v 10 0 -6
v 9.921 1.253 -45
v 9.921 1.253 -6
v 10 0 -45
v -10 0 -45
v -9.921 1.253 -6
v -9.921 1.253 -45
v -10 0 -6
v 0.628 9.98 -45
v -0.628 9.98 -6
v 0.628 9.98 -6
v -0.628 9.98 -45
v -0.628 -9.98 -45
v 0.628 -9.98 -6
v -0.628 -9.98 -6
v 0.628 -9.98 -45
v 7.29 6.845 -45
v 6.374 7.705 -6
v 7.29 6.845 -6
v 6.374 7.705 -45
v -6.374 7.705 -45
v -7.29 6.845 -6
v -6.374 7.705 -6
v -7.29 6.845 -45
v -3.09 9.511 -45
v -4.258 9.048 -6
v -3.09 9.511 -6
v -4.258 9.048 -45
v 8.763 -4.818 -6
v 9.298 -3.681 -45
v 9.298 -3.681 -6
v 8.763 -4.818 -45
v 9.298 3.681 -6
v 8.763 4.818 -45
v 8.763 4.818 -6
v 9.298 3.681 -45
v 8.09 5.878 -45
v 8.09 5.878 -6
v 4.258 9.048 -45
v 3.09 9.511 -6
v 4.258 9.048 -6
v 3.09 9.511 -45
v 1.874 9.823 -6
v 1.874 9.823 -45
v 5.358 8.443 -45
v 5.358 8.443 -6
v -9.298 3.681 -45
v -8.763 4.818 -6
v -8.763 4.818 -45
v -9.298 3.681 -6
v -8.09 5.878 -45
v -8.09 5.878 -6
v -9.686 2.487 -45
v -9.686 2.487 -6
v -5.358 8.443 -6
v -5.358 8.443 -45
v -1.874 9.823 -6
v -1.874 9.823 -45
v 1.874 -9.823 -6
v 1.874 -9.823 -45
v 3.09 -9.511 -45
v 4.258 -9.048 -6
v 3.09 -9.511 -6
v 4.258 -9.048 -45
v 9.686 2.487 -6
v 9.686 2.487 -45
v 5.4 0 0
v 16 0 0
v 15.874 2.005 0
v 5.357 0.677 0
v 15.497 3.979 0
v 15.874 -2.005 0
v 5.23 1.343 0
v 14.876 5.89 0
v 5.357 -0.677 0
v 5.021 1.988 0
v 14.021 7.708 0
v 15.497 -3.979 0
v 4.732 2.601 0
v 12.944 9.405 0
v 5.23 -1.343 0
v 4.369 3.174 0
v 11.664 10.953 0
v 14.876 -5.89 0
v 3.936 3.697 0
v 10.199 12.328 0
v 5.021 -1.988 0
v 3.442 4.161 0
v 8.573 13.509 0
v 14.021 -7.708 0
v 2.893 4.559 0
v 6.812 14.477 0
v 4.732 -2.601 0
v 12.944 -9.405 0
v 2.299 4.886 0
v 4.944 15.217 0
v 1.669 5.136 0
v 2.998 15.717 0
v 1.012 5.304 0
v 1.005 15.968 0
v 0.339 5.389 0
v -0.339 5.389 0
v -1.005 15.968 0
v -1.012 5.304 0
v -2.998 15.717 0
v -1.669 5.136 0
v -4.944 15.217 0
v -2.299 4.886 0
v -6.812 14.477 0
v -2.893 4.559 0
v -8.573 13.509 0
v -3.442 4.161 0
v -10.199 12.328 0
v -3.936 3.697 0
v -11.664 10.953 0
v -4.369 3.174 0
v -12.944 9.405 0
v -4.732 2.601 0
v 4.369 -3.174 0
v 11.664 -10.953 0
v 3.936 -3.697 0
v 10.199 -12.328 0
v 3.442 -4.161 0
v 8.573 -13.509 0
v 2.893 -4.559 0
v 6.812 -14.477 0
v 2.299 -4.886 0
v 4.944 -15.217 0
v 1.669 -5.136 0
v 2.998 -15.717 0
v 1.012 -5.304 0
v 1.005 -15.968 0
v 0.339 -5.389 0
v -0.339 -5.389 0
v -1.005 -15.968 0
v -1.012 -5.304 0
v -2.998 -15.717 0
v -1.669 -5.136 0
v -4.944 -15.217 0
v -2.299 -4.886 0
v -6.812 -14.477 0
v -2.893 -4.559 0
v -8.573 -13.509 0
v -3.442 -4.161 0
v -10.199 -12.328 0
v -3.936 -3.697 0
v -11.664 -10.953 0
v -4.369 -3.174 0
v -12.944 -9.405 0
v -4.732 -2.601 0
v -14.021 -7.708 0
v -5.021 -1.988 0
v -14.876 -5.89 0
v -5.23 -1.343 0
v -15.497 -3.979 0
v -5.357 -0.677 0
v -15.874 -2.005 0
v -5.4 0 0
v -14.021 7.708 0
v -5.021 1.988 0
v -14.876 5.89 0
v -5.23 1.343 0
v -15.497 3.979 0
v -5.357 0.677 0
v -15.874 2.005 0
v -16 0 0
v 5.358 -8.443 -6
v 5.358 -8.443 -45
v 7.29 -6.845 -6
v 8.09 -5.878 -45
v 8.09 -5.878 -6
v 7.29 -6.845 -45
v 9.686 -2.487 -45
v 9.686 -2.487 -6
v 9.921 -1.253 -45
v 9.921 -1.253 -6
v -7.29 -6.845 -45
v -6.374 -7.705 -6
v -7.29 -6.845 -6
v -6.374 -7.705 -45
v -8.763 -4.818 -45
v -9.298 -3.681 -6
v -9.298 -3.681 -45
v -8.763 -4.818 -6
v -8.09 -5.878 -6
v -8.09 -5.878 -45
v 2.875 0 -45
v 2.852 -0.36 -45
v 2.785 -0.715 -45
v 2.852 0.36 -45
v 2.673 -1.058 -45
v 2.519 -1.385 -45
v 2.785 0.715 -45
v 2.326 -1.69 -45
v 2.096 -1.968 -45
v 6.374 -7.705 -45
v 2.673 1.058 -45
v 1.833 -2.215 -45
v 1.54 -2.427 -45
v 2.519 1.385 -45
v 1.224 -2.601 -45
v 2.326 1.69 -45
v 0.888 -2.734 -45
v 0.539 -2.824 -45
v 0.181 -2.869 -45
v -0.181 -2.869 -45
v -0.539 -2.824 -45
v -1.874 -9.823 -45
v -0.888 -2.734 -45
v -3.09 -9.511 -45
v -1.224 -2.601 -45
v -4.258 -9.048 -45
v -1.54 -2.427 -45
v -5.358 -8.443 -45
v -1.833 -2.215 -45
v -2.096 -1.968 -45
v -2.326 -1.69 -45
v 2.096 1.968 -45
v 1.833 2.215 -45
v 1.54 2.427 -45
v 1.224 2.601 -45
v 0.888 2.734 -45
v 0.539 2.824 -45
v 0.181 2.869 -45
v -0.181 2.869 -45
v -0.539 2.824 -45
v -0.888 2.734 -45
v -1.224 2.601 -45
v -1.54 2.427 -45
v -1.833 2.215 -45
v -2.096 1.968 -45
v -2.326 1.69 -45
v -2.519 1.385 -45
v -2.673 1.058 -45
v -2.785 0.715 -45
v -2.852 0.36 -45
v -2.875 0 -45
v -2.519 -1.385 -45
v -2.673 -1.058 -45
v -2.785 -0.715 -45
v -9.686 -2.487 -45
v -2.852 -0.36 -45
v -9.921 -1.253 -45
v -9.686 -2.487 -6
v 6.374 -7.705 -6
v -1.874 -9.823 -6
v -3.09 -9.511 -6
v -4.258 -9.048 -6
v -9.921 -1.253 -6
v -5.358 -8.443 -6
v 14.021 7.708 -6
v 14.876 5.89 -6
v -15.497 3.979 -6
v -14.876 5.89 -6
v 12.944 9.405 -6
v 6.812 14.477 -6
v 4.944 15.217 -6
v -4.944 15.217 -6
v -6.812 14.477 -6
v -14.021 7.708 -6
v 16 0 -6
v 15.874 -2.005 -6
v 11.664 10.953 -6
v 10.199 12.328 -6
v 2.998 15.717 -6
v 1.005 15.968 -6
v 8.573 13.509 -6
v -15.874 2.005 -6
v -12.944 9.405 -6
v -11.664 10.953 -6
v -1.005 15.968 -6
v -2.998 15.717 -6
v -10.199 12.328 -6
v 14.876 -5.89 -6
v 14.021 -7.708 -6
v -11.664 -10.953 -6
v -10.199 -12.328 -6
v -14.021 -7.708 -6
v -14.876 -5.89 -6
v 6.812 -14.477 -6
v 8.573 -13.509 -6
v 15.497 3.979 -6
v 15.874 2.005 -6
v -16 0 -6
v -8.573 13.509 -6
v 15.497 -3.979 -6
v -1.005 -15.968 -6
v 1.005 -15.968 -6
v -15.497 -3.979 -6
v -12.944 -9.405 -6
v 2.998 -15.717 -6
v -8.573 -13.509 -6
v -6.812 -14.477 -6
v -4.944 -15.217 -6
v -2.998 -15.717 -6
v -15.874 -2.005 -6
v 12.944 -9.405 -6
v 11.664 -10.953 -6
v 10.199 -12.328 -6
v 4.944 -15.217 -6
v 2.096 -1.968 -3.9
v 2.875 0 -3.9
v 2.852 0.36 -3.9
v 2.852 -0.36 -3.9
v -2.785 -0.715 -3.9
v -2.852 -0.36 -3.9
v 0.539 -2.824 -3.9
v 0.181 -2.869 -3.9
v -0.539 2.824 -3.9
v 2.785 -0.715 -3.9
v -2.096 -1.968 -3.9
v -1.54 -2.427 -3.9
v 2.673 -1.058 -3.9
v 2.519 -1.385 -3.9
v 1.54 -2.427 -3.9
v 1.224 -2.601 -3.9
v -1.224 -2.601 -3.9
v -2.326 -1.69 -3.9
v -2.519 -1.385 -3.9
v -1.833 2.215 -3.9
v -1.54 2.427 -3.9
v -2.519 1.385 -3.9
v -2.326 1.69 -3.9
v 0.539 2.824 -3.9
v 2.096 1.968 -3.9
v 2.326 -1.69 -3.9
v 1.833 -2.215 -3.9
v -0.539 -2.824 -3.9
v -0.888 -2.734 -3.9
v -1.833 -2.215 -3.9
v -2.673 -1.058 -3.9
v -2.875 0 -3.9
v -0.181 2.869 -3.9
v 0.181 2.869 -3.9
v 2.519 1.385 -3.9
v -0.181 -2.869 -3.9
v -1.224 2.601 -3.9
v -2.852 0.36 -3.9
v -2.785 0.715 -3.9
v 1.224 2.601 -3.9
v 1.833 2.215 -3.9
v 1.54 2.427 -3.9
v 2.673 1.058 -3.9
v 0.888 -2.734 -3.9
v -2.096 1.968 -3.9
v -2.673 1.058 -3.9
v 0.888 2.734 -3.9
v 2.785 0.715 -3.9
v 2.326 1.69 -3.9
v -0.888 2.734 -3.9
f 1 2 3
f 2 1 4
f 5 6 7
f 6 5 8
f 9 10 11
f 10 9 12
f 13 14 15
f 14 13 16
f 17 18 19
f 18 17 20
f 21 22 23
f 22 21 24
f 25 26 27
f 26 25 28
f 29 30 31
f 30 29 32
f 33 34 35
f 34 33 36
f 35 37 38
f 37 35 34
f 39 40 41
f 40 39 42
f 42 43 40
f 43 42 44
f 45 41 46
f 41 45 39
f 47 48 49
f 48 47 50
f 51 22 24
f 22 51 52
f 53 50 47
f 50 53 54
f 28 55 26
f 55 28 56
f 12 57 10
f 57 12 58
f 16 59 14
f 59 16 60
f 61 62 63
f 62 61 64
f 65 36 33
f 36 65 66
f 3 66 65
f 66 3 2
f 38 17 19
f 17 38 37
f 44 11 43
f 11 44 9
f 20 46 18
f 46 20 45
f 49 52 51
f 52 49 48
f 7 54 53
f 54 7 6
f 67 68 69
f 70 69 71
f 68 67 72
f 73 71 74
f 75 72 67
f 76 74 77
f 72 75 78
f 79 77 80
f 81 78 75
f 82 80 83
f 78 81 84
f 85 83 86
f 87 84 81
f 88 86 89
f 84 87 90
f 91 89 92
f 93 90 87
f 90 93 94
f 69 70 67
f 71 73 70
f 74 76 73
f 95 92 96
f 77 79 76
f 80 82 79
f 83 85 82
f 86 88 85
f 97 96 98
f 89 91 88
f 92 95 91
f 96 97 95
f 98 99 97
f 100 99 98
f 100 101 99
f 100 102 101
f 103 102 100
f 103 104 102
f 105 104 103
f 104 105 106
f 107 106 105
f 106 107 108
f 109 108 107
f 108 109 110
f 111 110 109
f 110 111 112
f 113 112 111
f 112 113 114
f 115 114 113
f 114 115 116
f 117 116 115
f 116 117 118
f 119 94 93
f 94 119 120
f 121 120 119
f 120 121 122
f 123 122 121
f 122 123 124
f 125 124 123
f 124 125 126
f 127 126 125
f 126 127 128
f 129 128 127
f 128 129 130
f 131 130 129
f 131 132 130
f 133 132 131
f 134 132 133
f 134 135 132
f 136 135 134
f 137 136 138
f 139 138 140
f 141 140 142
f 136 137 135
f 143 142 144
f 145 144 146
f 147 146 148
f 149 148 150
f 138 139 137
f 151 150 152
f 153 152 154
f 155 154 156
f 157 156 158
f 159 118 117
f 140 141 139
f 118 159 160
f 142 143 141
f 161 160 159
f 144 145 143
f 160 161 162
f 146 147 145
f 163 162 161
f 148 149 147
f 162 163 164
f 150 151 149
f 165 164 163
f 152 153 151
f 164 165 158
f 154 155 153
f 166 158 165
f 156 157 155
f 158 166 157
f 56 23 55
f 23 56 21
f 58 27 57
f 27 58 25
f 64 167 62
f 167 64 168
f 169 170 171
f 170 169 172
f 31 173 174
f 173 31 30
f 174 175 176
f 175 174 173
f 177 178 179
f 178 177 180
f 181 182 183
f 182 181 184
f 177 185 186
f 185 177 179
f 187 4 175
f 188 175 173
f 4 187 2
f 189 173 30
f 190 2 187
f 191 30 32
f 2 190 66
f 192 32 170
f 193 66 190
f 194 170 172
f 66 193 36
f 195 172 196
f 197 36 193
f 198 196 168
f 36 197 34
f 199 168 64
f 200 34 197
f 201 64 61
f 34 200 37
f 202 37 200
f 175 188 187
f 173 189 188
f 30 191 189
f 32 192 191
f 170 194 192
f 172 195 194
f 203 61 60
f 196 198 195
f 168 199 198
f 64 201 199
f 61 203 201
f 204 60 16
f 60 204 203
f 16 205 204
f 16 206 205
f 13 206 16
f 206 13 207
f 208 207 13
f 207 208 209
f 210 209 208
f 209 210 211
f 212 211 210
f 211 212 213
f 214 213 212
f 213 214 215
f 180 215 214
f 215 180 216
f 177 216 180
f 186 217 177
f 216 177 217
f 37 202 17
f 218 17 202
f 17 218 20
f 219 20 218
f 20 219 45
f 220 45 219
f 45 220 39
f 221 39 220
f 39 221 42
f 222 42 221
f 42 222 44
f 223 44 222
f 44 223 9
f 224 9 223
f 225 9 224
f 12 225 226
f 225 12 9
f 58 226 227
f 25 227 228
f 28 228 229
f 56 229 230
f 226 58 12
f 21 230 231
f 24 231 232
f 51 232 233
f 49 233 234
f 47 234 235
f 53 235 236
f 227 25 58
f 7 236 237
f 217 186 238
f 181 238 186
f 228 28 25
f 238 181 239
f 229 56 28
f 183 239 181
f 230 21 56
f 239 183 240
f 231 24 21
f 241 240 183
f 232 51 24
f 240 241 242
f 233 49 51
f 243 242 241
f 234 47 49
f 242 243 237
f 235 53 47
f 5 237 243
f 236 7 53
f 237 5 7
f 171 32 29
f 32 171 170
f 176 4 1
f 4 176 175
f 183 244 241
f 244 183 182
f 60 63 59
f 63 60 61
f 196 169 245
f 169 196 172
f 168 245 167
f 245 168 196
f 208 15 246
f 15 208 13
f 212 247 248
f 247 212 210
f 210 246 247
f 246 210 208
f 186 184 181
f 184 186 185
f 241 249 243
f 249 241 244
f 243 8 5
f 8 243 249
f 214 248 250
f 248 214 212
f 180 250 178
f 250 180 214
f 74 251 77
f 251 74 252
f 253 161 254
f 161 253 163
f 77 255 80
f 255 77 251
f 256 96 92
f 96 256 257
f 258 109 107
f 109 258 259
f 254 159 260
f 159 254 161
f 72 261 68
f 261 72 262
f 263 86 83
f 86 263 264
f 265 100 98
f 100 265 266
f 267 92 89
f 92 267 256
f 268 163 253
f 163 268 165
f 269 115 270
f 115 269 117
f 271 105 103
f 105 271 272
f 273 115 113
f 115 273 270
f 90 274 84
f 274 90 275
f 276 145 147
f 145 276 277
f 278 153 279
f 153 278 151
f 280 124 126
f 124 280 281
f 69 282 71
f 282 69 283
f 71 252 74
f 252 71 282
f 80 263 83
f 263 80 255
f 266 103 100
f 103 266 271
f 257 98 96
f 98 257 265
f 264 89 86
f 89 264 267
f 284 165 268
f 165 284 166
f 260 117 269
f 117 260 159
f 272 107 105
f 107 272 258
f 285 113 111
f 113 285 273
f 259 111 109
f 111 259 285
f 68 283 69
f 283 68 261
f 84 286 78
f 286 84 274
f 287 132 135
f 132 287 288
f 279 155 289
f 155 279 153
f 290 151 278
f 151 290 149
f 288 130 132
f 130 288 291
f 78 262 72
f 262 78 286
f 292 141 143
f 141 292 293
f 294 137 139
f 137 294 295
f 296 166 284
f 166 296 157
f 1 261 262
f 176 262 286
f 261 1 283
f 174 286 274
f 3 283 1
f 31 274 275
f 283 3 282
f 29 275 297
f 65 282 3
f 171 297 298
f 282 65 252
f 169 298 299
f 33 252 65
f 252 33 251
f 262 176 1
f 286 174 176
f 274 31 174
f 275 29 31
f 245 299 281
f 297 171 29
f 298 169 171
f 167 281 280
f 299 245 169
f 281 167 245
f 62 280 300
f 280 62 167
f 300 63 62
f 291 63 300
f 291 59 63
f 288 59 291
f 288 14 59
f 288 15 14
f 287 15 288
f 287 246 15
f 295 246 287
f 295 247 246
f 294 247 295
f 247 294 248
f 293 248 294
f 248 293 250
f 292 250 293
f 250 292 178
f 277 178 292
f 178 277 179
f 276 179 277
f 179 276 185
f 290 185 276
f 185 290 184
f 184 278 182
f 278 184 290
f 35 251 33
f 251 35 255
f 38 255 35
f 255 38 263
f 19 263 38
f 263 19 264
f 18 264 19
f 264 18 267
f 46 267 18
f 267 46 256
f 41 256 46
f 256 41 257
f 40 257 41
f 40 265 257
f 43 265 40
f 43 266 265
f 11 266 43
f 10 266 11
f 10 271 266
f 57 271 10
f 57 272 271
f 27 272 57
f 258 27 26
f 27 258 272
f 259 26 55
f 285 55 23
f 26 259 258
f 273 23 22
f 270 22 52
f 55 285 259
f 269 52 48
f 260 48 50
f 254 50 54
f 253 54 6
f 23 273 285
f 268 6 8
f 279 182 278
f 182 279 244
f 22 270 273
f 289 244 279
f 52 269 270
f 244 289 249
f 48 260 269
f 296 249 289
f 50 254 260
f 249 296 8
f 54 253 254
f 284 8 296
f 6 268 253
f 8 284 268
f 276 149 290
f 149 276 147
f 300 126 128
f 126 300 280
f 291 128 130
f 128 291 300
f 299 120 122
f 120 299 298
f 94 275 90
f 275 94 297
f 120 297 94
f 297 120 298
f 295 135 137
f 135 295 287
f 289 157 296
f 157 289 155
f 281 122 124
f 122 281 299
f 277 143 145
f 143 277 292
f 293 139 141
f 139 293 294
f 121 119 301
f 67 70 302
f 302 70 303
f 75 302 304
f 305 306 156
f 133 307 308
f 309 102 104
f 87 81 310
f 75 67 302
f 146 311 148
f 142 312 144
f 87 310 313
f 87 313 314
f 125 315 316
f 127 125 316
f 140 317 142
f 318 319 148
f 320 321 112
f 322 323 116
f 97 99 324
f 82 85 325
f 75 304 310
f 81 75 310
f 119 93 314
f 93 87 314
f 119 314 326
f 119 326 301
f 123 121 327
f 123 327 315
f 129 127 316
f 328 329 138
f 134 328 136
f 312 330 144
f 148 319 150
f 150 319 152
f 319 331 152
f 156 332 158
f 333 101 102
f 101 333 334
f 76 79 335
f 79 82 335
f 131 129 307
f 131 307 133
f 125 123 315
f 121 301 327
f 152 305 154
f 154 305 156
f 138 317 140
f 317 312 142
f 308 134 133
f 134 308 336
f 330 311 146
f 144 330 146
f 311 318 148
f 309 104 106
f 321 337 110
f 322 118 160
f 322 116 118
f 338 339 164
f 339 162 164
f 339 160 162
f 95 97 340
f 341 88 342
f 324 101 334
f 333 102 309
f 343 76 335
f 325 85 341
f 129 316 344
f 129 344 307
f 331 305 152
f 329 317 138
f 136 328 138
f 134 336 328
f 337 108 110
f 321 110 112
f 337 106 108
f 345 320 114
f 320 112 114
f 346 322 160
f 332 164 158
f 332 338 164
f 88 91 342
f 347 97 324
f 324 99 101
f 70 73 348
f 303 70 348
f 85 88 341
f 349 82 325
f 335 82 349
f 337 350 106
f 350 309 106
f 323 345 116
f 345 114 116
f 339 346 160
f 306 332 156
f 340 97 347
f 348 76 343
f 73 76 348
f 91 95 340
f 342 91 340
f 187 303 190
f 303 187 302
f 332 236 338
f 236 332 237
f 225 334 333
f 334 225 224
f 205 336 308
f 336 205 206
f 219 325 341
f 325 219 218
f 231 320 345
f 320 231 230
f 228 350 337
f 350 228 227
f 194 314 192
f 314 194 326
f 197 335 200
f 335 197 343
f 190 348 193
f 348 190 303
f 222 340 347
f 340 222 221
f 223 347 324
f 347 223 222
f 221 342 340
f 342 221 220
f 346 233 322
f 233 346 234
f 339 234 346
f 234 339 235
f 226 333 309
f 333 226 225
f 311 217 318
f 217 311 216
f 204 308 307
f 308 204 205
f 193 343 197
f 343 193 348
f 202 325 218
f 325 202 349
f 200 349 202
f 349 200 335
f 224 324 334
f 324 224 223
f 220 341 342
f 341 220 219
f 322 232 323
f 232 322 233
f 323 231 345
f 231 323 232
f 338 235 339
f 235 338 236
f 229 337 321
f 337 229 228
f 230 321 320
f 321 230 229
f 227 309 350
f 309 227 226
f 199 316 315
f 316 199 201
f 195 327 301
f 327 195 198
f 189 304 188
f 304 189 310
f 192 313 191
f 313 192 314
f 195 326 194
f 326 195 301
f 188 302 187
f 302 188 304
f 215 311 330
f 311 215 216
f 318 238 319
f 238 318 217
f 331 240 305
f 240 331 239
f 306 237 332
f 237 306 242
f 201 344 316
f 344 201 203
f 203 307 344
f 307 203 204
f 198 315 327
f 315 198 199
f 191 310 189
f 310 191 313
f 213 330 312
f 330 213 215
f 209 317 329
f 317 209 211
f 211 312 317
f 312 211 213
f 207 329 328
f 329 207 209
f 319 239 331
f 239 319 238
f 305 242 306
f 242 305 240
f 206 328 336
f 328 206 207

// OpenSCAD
$fn = 50;


difference() {
	union() {
		translate(v = [0, 0, -45.0000000000]) {
			cylinder(h = 45, r = 10.0000000000);
		}
		translate(v = [0, 0, -6.0000000000]) {
			cylinder(h = 6, r = 16.0000000000);
		}
	}
	union() {
		translate(v = [0, 0, 0]) {
			rotate(a = [0, 0, 0]) {
				difference() {
					union() {
						#translate(v = [0, 0, -45.0000000000]) {
							cylinder(h = 45, r = 2.6000000000);
						}
						#translate(v = [0, 0, -3.9000000000]) {
							cylinder(h = 3.9000000000, r = 10.0000000000, r1 = 2.8750000000, r2 = 5.4000000000);
						}
						#translate(v = [0, 0, -45.0000000000]) {
							cylinder(h = 45, r = 2.8750000000);
						}
						#translate(v = [0, 0, -45.0000000000]) {
							cylinder(h = 45, r = 2.6000000000);
						}
					}
					union();
				}
			}
		}
	}
}
